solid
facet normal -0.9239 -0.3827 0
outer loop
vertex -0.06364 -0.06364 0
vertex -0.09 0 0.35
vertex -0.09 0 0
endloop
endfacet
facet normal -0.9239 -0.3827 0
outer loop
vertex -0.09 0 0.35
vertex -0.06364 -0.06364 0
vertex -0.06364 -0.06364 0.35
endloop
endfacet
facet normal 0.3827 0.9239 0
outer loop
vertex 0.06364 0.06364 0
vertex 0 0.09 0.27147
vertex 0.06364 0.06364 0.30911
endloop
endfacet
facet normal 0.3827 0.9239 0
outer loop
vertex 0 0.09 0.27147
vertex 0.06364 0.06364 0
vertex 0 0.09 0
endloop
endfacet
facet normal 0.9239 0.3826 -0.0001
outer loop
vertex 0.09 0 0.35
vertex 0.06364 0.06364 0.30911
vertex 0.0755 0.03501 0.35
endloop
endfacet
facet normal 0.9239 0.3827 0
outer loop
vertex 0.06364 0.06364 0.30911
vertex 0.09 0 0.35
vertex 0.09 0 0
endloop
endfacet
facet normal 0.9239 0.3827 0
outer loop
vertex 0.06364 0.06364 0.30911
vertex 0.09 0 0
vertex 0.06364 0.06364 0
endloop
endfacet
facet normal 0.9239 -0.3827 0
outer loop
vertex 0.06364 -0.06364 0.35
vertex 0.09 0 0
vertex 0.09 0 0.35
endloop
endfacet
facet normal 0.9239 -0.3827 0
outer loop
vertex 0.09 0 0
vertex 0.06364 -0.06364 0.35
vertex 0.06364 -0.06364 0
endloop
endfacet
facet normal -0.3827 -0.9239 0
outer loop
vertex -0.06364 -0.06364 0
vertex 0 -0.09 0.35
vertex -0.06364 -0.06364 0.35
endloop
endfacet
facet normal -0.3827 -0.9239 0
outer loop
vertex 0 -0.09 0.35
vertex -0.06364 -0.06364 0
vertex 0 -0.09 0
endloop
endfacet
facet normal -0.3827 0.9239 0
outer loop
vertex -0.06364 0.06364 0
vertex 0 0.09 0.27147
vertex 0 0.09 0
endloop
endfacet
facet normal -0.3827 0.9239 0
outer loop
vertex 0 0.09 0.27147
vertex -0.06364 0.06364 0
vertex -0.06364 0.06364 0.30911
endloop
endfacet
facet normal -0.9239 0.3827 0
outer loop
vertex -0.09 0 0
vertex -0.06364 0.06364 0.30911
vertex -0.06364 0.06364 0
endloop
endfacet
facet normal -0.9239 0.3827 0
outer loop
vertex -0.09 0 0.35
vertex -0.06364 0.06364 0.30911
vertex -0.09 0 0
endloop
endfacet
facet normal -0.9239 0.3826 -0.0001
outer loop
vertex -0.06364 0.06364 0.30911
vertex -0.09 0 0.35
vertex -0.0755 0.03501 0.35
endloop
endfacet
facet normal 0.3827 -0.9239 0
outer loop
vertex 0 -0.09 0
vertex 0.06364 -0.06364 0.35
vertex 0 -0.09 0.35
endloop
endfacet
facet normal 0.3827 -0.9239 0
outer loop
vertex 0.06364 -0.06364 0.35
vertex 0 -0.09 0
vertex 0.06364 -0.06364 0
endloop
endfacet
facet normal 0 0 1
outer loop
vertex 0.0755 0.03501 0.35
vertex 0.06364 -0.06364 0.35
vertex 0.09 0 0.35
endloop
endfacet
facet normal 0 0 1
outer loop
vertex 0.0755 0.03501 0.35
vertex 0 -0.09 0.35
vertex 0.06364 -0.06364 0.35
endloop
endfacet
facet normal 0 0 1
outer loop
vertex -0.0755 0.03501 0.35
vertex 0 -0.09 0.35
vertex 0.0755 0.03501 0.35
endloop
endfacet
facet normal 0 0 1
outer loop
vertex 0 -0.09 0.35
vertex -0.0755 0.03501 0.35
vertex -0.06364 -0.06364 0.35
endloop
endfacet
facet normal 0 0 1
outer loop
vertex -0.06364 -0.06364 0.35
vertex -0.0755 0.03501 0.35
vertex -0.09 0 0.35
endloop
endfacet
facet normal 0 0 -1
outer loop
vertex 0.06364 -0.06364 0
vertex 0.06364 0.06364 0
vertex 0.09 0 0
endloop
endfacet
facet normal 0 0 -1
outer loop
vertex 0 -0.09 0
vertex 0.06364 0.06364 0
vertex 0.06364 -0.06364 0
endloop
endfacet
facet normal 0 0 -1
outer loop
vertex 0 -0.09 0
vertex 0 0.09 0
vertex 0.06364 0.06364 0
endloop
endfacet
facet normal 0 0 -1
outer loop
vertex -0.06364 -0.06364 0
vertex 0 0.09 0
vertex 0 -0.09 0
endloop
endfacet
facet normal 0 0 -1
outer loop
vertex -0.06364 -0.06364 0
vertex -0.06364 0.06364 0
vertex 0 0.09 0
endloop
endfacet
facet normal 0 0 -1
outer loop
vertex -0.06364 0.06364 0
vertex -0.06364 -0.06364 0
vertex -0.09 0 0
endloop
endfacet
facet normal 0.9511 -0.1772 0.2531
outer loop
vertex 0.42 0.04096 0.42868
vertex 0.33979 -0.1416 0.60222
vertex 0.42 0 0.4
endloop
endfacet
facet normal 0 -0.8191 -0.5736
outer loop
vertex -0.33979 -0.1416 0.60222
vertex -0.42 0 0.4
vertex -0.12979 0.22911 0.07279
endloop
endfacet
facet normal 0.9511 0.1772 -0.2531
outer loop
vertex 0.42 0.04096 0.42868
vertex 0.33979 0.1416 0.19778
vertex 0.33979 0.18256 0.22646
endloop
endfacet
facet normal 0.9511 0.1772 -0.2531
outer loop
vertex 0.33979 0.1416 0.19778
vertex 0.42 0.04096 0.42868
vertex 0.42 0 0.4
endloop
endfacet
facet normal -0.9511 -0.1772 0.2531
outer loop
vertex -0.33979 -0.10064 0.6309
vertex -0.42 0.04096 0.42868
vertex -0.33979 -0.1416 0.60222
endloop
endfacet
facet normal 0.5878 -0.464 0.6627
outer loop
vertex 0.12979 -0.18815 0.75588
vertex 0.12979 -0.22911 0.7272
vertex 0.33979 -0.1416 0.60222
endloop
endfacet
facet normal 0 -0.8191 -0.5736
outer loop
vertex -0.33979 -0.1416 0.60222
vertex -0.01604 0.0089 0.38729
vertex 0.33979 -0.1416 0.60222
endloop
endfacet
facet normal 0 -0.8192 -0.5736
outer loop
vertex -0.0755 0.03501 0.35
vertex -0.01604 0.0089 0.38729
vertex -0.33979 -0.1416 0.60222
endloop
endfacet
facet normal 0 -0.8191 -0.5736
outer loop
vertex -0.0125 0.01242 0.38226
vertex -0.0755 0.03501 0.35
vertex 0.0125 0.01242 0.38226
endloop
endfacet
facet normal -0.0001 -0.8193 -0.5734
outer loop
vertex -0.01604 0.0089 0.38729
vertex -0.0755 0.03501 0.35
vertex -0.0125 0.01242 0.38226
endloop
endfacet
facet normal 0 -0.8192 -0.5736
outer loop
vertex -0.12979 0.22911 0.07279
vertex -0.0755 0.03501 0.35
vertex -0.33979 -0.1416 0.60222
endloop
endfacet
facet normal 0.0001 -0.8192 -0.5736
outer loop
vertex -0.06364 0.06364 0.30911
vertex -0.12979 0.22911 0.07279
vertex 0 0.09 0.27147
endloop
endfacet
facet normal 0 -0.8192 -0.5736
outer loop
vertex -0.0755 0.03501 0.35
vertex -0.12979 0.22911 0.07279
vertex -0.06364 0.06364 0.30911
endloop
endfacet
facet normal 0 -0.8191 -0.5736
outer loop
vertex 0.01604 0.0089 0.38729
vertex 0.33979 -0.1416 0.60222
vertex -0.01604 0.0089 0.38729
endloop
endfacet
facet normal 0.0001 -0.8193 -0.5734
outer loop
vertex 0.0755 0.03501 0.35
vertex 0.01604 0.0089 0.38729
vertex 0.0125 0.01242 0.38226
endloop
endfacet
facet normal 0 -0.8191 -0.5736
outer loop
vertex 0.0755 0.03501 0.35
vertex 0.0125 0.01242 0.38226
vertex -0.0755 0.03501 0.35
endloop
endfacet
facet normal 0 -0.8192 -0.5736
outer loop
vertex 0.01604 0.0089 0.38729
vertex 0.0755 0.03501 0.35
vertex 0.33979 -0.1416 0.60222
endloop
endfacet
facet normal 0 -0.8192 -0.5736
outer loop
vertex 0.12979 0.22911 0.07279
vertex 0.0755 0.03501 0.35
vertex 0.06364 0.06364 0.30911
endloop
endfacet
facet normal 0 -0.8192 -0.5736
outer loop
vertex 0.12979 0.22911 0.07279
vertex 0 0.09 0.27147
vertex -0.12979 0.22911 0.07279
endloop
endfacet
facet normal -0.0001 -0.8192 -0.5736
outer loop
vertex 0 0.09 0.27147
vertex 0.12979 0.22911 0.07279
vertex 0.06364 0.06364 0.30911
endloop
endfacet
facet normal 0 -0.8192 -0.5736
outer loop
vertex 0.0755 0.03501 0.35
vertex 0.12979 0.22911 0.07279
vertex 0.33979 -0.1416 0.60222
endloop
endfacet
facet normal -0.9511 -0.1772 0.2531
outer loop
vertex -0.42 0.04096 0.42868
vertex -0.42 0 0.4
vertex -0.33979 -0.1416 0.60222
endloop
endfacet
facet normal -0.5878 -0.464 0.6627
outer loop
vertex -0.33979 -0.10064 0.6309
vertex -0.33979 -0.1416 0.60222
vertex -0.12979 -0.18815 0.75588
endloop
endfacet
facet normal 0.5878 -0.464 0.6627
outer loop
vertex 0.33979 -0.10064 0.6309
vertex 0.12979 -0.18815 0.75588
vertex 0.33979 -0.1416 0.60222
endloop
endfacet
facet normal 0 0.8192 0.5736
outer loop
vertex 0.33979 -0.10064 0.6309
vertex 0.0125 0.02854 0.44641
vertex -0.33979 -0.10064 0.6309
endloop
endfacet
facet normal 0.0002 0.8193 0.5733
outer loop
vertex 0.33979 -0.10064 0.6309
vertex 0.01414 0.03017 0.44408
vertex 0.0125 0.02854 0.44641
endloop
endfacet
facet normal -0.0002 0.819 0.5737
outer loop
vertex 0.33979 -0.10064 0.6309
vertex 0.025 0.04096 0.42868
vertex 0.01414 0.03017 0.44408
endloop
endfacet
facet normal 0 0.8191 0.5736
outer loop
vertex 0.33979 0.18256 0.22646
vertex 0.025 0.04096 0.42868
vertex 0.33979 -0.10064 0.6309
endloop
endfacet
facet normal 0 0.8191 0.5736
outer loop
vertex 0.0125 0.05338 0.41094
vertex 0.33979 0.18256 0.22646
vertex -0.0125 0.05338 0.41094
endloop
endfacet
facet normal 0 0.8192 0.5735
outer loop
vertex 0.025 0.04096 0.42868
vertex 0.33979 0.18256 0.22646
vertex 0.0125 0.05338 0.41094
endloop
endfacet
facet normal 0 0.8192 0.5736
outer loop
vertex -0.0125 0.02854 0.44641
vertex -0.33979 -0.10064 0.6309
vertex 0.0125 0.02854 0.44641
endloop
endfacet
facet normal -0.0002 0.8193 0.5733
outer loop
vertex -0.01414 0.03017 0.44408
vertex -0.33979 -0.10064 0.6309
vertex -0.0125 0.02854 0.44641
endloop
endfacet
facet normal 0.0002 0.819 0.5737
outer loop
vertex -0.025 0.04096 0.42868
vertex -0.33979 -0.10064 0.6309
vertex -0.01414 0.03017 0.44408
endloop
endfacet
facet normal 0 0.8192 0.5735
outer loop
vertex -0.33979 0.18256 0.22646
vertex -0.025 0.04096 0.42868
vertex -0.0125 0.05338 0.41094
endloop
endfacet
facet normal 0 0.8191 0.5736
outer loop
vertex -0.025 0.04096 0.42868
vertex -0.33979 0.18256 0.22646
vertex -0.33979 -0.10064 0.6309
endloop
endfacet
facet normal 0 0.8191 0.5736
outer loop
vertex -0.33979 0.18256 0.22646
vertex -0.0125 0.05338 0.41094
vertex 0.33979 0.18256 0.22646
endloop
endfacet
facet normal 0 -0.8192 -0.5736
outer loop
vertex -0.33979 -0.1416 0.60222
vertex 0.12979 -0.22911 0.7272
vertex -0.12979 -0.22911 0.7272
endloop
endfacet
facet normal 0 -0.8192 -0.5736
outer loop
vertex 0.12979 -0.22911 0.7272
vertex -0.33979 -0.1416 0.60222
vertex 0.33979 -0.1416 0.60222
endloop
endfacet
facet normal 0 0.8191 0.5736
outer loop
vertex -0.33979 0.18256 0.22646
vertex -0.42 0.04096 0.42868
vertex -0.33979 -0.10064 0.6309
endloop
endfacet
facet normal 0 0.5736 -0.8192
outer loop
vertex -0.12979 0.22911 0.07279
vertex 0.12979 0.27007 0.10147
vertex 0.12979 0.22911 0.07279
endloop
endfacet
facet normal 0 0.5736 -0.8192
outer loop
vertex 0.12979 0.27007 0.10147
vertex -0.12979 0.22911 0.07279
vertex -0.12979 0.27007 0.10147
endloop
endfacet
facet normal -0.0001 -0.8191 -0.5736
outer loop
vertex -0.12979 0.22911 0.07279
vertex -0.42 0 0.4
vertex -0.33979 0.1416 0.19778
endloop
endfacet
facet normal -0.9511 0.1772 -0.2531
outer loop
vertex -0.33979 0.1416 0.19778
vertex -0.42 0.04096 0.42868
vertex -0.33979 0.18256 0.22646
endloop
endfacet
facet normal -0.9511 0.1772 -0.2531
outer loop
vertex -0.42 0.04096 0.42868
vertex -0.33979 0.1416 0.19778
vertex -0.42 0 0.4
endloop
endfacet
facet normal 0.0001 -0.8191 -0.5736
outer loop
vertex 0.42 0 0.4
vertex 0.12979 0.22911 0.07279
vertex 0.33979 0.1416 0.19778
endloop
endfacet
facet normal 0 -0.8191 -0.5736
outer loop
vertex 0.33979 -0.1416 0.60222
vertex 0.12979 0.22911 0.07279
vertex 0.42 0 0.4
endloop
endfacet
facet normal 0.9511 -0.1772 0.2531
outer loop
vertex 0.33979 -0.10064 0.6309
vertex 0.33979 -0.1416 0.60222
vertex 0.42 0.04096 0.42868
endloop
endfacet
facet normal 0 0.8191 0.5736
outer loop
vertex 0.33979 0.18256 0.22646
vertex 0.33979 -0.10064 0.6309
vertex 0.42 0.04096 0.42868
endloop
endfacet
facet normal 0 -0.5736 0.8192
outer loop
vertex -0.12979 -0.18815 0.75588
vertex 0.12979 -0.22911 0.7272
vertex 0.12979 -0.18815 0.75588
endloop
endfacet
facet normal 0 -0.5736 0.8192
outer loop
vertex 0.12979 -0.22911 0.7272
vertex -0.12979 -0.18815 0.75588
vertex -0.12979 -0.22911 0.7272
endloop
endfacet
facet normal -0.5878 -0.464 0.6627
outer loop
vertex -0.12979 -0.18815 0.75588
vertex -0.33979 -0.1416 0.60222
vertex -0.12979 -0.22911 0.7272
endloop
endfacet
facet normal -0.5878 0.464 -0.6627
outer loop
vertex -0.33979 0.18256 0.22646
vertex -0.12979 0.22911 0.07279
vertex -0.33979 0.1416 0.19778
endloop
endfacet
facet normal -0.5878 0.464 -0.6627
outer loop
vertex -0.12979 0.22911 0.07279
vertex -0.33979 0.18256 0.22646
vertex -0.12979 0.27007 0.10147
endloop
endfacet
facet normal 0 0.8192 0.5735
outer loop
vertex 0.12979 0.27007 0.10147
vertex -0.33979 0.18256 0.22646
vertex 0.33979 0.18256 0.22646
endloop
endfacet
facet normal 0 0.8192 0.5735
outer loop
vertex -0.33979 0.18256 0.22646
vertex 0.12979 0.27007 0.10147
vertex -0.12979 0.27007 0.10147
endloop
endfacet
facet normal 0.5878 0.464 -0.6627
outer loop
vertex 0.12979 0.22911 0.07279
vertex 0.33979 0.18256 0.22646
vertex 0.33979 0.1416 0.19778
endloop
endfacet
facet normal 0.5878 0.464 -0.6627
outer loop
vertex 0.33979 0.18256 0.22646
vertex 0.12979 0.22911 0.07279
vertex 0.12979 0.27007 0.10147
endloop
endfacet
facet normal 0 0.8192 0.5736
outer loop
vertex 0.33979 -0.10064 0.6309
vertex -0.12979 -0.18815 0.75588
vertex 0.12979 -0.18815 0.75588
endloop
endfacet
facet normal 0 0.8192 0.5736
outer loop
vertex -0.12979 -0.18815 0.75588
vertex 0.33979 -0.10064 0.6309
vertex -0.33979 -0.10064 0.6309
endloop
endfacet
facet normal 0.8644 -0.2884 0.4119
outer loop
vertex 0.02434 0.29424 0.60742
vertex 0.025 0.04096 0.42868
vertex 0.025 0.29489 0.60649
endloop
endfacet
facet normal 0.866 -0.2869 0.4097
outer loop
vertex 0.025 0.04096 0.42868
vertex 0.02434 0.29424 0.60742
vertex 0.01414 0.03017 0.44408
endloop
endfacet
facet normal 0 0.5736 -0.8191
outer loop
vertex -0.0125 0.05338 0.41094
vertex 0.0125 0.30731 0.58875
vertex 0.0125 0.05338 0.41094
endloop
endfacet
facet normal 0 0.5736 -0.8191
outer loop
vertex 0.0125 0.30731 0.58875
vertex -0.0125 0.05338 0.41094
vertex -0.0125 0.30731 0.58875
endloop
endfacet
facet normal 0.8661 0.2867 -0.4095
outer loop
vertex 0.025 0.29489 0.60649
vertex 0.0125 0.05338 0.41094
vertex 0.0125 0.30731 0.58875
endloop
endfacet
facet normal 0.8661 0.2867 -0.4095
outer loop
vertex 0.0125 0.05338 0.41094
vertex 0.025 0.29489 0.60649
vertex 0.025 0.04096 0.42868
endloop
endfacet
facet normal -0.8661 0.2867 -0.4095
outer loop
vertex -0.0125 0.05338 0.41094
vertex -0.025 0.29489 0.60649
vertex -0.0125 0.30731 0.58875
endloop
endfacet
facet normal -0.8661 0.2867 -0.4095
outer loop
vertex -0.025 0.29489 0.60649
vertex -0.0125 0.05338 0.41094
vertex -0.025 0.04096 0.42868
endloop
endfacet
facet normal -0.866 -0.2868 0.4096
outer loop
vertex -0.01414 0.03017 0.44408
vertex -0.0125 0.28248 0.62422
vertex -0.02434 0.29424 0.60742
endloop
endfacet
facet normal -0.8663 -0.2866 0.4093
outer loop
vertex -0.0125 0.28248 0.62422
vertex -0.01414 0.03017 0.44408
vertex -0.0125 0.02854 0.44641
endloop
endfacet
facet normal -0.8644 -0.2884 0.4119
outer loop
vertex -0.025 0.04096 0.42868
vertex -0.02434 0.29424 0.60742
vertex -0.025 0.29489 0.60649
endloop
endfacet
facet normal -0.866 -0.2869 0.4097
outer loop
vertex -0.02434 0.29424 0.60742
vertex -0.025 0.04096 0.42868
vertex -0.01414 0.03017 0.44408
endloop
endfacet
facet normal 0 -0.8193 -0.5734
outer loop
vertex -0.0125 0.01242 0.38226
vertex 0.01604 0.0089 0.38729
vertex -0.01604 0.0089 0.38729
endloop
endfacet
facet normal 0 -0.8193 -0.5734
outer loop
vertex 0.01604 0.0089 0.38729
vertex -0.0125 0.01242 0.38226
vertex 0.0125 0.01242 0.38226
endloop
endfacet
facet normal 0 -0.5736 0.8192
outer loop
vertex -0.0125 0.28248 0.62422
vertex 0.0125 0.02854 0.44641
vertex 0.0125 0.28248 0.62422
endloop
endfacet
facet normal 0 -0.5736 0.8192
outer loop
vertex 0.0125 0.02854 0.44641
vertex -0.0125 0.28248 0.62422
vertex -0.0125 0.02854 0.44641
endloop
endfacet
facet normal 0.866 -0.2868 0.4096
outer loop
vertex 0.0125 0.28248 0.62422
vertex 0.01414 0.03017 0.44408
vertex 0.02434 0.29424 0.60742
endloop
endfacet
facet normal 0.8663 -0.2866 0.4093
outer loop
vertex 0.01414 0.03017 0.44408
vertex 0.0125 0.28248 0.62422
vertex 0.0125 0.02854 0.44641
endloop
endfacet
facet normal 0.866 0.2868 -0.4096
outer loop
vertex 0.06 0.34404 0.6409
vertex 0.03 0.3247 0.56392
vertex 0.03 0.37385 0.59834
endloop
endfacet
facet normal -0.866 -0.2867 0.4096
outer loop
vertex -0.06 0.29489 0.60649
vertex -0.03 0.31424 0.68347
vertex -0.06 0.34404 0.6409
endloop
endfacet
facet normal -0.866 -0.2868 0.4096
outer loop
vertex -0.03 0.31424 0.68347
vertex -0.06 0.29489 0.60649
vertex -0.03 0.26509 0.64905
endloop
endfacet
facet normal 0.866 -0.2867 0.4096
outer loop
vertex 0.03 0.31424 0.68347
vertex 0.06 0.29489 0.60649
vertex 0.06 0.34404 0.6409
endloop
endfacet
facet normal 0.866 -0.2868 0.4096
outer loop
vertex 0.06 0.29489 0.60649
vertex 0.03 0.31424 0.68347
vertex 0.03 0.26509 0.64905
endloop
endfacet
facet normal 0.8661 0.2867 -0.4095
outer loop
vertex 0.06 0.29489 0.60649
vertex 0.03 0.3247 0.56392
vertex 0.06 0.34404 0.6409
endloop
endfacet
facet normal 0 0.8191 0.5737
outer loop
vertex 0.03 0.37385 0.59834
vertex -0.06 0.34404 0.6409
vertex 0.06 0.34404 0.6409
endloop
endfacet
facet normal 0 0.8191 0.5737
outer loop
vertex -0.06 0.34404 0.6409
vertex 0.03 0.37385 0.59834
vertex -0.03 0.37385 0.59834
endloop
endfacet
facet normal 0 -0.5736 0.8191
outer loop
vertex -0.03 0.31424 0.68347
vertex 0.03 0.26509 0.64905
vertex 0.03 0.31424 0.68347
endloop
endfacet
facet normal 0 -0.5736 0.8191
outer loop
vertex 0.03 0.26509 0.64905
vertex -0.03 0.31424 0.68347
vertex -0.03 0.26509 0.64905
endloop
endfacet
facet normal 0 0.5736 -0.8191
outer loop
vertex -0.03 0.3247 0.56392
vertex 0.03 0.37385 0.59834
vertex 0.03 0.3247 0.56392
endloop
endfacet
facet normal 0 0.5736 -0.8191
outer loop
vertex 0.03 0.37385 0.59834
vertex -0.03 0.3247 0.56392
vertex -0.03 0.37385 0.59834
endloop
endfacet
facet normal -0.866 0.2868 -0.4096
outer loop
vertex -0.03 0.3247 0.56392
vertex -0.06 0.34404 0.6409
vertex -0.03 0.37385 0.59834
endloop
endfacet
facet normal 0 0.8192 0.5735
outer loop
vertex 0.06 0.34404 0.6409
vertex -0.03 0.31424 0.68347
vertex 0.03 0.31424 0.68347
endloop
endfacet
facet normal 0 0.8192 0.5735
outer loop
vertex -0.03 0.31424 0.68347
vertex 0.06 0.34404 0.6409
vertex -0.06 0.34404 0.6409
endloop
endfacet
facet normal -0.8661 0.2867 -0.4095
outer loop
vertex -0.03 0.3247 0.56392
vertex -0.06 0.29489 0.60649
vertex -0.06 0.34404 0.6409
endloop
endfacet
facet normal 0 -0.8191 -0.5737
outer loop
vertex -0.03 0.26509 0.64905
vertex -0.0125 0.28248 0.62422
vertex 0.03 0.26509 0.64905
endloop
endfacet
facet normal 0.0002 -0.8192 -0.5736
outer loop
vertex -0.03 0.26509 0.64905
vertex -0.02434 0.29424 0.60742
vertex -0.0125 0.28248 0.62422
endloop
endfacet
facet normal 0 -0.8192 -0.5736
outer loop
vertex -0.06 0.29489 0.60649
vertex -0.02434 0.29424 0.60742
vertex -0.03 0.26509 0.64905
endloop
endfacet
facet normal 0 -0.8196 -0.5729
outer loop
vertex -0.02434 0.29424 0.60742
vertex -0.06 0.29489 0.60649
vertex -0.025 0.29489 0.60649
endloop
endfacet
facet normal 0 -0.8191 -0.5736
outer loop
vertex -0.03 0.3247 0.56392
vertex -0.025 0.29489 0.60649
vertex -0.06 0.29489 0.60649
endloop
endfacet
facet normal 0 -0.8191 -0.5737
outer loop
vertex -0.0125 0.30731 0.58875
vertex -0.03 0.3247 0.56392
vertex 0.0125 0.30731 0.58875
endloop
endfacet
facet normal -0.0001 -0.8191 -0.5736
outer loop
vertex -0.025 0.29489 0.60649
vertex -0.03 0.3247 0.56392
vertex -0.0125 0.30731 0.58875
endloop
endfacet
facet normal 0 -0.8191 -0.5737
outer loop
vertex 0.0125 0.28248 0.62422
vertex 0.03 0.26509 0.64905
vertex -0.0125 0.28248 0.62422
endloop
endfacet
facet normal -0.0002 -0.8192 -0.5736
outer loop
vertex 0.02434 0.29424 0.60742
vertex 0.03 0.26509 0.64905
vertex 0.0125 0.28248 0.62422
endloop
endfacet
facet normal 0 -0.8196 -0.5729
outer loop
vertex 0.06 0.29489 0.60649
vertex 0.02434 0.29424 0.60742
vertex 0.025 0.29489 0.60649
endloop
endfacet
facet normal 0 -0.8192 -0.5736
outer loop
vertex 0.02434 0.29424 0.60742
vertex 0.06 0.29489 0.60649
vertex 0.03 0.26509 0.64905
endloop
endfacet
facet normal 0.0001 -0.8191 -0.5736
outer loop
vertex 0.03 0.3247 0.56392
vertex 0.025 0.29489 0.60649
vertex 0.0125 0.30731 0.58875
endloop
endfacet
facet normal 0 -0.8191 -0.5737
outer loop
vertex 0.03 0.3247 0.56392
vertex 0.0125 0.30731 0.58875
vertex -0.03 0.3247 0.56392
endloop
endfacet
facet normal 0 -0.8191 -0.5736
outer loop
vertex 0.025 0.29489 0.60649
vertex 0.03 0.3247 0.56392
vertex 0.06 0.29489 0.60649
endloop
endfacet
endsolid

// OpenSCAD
union() {
  union() {
    union() {
      translate([0, 0, 0.0]) {
        cylinder(h = 0.35, r = 9.0e-2, $fn = 8);
      }
      translate([0, 0, 0.4]) {
        rotate([-55.0, 0, 0]) {
          cylinder(h = 5.0e-2, r = 0.42, $fn = 10);
        }
      }
    }
    translate([0, 0, 0.4]) {
      rotate([-55.0, 0, 0]) {
        cylinder(h = 0.38, r = 2.5e-2, $fn = 6);
      }
    }
  }
  translate([0, 0, 0.4]) {
    rotate([-55.0, 0, 0]) {
      translate([0, 0, 0.36]) {
        cylinder(h = 6.0e-2, r = 6.0e-2, $fn = 6);
      }
    }
  }
}
$fn = 50;
